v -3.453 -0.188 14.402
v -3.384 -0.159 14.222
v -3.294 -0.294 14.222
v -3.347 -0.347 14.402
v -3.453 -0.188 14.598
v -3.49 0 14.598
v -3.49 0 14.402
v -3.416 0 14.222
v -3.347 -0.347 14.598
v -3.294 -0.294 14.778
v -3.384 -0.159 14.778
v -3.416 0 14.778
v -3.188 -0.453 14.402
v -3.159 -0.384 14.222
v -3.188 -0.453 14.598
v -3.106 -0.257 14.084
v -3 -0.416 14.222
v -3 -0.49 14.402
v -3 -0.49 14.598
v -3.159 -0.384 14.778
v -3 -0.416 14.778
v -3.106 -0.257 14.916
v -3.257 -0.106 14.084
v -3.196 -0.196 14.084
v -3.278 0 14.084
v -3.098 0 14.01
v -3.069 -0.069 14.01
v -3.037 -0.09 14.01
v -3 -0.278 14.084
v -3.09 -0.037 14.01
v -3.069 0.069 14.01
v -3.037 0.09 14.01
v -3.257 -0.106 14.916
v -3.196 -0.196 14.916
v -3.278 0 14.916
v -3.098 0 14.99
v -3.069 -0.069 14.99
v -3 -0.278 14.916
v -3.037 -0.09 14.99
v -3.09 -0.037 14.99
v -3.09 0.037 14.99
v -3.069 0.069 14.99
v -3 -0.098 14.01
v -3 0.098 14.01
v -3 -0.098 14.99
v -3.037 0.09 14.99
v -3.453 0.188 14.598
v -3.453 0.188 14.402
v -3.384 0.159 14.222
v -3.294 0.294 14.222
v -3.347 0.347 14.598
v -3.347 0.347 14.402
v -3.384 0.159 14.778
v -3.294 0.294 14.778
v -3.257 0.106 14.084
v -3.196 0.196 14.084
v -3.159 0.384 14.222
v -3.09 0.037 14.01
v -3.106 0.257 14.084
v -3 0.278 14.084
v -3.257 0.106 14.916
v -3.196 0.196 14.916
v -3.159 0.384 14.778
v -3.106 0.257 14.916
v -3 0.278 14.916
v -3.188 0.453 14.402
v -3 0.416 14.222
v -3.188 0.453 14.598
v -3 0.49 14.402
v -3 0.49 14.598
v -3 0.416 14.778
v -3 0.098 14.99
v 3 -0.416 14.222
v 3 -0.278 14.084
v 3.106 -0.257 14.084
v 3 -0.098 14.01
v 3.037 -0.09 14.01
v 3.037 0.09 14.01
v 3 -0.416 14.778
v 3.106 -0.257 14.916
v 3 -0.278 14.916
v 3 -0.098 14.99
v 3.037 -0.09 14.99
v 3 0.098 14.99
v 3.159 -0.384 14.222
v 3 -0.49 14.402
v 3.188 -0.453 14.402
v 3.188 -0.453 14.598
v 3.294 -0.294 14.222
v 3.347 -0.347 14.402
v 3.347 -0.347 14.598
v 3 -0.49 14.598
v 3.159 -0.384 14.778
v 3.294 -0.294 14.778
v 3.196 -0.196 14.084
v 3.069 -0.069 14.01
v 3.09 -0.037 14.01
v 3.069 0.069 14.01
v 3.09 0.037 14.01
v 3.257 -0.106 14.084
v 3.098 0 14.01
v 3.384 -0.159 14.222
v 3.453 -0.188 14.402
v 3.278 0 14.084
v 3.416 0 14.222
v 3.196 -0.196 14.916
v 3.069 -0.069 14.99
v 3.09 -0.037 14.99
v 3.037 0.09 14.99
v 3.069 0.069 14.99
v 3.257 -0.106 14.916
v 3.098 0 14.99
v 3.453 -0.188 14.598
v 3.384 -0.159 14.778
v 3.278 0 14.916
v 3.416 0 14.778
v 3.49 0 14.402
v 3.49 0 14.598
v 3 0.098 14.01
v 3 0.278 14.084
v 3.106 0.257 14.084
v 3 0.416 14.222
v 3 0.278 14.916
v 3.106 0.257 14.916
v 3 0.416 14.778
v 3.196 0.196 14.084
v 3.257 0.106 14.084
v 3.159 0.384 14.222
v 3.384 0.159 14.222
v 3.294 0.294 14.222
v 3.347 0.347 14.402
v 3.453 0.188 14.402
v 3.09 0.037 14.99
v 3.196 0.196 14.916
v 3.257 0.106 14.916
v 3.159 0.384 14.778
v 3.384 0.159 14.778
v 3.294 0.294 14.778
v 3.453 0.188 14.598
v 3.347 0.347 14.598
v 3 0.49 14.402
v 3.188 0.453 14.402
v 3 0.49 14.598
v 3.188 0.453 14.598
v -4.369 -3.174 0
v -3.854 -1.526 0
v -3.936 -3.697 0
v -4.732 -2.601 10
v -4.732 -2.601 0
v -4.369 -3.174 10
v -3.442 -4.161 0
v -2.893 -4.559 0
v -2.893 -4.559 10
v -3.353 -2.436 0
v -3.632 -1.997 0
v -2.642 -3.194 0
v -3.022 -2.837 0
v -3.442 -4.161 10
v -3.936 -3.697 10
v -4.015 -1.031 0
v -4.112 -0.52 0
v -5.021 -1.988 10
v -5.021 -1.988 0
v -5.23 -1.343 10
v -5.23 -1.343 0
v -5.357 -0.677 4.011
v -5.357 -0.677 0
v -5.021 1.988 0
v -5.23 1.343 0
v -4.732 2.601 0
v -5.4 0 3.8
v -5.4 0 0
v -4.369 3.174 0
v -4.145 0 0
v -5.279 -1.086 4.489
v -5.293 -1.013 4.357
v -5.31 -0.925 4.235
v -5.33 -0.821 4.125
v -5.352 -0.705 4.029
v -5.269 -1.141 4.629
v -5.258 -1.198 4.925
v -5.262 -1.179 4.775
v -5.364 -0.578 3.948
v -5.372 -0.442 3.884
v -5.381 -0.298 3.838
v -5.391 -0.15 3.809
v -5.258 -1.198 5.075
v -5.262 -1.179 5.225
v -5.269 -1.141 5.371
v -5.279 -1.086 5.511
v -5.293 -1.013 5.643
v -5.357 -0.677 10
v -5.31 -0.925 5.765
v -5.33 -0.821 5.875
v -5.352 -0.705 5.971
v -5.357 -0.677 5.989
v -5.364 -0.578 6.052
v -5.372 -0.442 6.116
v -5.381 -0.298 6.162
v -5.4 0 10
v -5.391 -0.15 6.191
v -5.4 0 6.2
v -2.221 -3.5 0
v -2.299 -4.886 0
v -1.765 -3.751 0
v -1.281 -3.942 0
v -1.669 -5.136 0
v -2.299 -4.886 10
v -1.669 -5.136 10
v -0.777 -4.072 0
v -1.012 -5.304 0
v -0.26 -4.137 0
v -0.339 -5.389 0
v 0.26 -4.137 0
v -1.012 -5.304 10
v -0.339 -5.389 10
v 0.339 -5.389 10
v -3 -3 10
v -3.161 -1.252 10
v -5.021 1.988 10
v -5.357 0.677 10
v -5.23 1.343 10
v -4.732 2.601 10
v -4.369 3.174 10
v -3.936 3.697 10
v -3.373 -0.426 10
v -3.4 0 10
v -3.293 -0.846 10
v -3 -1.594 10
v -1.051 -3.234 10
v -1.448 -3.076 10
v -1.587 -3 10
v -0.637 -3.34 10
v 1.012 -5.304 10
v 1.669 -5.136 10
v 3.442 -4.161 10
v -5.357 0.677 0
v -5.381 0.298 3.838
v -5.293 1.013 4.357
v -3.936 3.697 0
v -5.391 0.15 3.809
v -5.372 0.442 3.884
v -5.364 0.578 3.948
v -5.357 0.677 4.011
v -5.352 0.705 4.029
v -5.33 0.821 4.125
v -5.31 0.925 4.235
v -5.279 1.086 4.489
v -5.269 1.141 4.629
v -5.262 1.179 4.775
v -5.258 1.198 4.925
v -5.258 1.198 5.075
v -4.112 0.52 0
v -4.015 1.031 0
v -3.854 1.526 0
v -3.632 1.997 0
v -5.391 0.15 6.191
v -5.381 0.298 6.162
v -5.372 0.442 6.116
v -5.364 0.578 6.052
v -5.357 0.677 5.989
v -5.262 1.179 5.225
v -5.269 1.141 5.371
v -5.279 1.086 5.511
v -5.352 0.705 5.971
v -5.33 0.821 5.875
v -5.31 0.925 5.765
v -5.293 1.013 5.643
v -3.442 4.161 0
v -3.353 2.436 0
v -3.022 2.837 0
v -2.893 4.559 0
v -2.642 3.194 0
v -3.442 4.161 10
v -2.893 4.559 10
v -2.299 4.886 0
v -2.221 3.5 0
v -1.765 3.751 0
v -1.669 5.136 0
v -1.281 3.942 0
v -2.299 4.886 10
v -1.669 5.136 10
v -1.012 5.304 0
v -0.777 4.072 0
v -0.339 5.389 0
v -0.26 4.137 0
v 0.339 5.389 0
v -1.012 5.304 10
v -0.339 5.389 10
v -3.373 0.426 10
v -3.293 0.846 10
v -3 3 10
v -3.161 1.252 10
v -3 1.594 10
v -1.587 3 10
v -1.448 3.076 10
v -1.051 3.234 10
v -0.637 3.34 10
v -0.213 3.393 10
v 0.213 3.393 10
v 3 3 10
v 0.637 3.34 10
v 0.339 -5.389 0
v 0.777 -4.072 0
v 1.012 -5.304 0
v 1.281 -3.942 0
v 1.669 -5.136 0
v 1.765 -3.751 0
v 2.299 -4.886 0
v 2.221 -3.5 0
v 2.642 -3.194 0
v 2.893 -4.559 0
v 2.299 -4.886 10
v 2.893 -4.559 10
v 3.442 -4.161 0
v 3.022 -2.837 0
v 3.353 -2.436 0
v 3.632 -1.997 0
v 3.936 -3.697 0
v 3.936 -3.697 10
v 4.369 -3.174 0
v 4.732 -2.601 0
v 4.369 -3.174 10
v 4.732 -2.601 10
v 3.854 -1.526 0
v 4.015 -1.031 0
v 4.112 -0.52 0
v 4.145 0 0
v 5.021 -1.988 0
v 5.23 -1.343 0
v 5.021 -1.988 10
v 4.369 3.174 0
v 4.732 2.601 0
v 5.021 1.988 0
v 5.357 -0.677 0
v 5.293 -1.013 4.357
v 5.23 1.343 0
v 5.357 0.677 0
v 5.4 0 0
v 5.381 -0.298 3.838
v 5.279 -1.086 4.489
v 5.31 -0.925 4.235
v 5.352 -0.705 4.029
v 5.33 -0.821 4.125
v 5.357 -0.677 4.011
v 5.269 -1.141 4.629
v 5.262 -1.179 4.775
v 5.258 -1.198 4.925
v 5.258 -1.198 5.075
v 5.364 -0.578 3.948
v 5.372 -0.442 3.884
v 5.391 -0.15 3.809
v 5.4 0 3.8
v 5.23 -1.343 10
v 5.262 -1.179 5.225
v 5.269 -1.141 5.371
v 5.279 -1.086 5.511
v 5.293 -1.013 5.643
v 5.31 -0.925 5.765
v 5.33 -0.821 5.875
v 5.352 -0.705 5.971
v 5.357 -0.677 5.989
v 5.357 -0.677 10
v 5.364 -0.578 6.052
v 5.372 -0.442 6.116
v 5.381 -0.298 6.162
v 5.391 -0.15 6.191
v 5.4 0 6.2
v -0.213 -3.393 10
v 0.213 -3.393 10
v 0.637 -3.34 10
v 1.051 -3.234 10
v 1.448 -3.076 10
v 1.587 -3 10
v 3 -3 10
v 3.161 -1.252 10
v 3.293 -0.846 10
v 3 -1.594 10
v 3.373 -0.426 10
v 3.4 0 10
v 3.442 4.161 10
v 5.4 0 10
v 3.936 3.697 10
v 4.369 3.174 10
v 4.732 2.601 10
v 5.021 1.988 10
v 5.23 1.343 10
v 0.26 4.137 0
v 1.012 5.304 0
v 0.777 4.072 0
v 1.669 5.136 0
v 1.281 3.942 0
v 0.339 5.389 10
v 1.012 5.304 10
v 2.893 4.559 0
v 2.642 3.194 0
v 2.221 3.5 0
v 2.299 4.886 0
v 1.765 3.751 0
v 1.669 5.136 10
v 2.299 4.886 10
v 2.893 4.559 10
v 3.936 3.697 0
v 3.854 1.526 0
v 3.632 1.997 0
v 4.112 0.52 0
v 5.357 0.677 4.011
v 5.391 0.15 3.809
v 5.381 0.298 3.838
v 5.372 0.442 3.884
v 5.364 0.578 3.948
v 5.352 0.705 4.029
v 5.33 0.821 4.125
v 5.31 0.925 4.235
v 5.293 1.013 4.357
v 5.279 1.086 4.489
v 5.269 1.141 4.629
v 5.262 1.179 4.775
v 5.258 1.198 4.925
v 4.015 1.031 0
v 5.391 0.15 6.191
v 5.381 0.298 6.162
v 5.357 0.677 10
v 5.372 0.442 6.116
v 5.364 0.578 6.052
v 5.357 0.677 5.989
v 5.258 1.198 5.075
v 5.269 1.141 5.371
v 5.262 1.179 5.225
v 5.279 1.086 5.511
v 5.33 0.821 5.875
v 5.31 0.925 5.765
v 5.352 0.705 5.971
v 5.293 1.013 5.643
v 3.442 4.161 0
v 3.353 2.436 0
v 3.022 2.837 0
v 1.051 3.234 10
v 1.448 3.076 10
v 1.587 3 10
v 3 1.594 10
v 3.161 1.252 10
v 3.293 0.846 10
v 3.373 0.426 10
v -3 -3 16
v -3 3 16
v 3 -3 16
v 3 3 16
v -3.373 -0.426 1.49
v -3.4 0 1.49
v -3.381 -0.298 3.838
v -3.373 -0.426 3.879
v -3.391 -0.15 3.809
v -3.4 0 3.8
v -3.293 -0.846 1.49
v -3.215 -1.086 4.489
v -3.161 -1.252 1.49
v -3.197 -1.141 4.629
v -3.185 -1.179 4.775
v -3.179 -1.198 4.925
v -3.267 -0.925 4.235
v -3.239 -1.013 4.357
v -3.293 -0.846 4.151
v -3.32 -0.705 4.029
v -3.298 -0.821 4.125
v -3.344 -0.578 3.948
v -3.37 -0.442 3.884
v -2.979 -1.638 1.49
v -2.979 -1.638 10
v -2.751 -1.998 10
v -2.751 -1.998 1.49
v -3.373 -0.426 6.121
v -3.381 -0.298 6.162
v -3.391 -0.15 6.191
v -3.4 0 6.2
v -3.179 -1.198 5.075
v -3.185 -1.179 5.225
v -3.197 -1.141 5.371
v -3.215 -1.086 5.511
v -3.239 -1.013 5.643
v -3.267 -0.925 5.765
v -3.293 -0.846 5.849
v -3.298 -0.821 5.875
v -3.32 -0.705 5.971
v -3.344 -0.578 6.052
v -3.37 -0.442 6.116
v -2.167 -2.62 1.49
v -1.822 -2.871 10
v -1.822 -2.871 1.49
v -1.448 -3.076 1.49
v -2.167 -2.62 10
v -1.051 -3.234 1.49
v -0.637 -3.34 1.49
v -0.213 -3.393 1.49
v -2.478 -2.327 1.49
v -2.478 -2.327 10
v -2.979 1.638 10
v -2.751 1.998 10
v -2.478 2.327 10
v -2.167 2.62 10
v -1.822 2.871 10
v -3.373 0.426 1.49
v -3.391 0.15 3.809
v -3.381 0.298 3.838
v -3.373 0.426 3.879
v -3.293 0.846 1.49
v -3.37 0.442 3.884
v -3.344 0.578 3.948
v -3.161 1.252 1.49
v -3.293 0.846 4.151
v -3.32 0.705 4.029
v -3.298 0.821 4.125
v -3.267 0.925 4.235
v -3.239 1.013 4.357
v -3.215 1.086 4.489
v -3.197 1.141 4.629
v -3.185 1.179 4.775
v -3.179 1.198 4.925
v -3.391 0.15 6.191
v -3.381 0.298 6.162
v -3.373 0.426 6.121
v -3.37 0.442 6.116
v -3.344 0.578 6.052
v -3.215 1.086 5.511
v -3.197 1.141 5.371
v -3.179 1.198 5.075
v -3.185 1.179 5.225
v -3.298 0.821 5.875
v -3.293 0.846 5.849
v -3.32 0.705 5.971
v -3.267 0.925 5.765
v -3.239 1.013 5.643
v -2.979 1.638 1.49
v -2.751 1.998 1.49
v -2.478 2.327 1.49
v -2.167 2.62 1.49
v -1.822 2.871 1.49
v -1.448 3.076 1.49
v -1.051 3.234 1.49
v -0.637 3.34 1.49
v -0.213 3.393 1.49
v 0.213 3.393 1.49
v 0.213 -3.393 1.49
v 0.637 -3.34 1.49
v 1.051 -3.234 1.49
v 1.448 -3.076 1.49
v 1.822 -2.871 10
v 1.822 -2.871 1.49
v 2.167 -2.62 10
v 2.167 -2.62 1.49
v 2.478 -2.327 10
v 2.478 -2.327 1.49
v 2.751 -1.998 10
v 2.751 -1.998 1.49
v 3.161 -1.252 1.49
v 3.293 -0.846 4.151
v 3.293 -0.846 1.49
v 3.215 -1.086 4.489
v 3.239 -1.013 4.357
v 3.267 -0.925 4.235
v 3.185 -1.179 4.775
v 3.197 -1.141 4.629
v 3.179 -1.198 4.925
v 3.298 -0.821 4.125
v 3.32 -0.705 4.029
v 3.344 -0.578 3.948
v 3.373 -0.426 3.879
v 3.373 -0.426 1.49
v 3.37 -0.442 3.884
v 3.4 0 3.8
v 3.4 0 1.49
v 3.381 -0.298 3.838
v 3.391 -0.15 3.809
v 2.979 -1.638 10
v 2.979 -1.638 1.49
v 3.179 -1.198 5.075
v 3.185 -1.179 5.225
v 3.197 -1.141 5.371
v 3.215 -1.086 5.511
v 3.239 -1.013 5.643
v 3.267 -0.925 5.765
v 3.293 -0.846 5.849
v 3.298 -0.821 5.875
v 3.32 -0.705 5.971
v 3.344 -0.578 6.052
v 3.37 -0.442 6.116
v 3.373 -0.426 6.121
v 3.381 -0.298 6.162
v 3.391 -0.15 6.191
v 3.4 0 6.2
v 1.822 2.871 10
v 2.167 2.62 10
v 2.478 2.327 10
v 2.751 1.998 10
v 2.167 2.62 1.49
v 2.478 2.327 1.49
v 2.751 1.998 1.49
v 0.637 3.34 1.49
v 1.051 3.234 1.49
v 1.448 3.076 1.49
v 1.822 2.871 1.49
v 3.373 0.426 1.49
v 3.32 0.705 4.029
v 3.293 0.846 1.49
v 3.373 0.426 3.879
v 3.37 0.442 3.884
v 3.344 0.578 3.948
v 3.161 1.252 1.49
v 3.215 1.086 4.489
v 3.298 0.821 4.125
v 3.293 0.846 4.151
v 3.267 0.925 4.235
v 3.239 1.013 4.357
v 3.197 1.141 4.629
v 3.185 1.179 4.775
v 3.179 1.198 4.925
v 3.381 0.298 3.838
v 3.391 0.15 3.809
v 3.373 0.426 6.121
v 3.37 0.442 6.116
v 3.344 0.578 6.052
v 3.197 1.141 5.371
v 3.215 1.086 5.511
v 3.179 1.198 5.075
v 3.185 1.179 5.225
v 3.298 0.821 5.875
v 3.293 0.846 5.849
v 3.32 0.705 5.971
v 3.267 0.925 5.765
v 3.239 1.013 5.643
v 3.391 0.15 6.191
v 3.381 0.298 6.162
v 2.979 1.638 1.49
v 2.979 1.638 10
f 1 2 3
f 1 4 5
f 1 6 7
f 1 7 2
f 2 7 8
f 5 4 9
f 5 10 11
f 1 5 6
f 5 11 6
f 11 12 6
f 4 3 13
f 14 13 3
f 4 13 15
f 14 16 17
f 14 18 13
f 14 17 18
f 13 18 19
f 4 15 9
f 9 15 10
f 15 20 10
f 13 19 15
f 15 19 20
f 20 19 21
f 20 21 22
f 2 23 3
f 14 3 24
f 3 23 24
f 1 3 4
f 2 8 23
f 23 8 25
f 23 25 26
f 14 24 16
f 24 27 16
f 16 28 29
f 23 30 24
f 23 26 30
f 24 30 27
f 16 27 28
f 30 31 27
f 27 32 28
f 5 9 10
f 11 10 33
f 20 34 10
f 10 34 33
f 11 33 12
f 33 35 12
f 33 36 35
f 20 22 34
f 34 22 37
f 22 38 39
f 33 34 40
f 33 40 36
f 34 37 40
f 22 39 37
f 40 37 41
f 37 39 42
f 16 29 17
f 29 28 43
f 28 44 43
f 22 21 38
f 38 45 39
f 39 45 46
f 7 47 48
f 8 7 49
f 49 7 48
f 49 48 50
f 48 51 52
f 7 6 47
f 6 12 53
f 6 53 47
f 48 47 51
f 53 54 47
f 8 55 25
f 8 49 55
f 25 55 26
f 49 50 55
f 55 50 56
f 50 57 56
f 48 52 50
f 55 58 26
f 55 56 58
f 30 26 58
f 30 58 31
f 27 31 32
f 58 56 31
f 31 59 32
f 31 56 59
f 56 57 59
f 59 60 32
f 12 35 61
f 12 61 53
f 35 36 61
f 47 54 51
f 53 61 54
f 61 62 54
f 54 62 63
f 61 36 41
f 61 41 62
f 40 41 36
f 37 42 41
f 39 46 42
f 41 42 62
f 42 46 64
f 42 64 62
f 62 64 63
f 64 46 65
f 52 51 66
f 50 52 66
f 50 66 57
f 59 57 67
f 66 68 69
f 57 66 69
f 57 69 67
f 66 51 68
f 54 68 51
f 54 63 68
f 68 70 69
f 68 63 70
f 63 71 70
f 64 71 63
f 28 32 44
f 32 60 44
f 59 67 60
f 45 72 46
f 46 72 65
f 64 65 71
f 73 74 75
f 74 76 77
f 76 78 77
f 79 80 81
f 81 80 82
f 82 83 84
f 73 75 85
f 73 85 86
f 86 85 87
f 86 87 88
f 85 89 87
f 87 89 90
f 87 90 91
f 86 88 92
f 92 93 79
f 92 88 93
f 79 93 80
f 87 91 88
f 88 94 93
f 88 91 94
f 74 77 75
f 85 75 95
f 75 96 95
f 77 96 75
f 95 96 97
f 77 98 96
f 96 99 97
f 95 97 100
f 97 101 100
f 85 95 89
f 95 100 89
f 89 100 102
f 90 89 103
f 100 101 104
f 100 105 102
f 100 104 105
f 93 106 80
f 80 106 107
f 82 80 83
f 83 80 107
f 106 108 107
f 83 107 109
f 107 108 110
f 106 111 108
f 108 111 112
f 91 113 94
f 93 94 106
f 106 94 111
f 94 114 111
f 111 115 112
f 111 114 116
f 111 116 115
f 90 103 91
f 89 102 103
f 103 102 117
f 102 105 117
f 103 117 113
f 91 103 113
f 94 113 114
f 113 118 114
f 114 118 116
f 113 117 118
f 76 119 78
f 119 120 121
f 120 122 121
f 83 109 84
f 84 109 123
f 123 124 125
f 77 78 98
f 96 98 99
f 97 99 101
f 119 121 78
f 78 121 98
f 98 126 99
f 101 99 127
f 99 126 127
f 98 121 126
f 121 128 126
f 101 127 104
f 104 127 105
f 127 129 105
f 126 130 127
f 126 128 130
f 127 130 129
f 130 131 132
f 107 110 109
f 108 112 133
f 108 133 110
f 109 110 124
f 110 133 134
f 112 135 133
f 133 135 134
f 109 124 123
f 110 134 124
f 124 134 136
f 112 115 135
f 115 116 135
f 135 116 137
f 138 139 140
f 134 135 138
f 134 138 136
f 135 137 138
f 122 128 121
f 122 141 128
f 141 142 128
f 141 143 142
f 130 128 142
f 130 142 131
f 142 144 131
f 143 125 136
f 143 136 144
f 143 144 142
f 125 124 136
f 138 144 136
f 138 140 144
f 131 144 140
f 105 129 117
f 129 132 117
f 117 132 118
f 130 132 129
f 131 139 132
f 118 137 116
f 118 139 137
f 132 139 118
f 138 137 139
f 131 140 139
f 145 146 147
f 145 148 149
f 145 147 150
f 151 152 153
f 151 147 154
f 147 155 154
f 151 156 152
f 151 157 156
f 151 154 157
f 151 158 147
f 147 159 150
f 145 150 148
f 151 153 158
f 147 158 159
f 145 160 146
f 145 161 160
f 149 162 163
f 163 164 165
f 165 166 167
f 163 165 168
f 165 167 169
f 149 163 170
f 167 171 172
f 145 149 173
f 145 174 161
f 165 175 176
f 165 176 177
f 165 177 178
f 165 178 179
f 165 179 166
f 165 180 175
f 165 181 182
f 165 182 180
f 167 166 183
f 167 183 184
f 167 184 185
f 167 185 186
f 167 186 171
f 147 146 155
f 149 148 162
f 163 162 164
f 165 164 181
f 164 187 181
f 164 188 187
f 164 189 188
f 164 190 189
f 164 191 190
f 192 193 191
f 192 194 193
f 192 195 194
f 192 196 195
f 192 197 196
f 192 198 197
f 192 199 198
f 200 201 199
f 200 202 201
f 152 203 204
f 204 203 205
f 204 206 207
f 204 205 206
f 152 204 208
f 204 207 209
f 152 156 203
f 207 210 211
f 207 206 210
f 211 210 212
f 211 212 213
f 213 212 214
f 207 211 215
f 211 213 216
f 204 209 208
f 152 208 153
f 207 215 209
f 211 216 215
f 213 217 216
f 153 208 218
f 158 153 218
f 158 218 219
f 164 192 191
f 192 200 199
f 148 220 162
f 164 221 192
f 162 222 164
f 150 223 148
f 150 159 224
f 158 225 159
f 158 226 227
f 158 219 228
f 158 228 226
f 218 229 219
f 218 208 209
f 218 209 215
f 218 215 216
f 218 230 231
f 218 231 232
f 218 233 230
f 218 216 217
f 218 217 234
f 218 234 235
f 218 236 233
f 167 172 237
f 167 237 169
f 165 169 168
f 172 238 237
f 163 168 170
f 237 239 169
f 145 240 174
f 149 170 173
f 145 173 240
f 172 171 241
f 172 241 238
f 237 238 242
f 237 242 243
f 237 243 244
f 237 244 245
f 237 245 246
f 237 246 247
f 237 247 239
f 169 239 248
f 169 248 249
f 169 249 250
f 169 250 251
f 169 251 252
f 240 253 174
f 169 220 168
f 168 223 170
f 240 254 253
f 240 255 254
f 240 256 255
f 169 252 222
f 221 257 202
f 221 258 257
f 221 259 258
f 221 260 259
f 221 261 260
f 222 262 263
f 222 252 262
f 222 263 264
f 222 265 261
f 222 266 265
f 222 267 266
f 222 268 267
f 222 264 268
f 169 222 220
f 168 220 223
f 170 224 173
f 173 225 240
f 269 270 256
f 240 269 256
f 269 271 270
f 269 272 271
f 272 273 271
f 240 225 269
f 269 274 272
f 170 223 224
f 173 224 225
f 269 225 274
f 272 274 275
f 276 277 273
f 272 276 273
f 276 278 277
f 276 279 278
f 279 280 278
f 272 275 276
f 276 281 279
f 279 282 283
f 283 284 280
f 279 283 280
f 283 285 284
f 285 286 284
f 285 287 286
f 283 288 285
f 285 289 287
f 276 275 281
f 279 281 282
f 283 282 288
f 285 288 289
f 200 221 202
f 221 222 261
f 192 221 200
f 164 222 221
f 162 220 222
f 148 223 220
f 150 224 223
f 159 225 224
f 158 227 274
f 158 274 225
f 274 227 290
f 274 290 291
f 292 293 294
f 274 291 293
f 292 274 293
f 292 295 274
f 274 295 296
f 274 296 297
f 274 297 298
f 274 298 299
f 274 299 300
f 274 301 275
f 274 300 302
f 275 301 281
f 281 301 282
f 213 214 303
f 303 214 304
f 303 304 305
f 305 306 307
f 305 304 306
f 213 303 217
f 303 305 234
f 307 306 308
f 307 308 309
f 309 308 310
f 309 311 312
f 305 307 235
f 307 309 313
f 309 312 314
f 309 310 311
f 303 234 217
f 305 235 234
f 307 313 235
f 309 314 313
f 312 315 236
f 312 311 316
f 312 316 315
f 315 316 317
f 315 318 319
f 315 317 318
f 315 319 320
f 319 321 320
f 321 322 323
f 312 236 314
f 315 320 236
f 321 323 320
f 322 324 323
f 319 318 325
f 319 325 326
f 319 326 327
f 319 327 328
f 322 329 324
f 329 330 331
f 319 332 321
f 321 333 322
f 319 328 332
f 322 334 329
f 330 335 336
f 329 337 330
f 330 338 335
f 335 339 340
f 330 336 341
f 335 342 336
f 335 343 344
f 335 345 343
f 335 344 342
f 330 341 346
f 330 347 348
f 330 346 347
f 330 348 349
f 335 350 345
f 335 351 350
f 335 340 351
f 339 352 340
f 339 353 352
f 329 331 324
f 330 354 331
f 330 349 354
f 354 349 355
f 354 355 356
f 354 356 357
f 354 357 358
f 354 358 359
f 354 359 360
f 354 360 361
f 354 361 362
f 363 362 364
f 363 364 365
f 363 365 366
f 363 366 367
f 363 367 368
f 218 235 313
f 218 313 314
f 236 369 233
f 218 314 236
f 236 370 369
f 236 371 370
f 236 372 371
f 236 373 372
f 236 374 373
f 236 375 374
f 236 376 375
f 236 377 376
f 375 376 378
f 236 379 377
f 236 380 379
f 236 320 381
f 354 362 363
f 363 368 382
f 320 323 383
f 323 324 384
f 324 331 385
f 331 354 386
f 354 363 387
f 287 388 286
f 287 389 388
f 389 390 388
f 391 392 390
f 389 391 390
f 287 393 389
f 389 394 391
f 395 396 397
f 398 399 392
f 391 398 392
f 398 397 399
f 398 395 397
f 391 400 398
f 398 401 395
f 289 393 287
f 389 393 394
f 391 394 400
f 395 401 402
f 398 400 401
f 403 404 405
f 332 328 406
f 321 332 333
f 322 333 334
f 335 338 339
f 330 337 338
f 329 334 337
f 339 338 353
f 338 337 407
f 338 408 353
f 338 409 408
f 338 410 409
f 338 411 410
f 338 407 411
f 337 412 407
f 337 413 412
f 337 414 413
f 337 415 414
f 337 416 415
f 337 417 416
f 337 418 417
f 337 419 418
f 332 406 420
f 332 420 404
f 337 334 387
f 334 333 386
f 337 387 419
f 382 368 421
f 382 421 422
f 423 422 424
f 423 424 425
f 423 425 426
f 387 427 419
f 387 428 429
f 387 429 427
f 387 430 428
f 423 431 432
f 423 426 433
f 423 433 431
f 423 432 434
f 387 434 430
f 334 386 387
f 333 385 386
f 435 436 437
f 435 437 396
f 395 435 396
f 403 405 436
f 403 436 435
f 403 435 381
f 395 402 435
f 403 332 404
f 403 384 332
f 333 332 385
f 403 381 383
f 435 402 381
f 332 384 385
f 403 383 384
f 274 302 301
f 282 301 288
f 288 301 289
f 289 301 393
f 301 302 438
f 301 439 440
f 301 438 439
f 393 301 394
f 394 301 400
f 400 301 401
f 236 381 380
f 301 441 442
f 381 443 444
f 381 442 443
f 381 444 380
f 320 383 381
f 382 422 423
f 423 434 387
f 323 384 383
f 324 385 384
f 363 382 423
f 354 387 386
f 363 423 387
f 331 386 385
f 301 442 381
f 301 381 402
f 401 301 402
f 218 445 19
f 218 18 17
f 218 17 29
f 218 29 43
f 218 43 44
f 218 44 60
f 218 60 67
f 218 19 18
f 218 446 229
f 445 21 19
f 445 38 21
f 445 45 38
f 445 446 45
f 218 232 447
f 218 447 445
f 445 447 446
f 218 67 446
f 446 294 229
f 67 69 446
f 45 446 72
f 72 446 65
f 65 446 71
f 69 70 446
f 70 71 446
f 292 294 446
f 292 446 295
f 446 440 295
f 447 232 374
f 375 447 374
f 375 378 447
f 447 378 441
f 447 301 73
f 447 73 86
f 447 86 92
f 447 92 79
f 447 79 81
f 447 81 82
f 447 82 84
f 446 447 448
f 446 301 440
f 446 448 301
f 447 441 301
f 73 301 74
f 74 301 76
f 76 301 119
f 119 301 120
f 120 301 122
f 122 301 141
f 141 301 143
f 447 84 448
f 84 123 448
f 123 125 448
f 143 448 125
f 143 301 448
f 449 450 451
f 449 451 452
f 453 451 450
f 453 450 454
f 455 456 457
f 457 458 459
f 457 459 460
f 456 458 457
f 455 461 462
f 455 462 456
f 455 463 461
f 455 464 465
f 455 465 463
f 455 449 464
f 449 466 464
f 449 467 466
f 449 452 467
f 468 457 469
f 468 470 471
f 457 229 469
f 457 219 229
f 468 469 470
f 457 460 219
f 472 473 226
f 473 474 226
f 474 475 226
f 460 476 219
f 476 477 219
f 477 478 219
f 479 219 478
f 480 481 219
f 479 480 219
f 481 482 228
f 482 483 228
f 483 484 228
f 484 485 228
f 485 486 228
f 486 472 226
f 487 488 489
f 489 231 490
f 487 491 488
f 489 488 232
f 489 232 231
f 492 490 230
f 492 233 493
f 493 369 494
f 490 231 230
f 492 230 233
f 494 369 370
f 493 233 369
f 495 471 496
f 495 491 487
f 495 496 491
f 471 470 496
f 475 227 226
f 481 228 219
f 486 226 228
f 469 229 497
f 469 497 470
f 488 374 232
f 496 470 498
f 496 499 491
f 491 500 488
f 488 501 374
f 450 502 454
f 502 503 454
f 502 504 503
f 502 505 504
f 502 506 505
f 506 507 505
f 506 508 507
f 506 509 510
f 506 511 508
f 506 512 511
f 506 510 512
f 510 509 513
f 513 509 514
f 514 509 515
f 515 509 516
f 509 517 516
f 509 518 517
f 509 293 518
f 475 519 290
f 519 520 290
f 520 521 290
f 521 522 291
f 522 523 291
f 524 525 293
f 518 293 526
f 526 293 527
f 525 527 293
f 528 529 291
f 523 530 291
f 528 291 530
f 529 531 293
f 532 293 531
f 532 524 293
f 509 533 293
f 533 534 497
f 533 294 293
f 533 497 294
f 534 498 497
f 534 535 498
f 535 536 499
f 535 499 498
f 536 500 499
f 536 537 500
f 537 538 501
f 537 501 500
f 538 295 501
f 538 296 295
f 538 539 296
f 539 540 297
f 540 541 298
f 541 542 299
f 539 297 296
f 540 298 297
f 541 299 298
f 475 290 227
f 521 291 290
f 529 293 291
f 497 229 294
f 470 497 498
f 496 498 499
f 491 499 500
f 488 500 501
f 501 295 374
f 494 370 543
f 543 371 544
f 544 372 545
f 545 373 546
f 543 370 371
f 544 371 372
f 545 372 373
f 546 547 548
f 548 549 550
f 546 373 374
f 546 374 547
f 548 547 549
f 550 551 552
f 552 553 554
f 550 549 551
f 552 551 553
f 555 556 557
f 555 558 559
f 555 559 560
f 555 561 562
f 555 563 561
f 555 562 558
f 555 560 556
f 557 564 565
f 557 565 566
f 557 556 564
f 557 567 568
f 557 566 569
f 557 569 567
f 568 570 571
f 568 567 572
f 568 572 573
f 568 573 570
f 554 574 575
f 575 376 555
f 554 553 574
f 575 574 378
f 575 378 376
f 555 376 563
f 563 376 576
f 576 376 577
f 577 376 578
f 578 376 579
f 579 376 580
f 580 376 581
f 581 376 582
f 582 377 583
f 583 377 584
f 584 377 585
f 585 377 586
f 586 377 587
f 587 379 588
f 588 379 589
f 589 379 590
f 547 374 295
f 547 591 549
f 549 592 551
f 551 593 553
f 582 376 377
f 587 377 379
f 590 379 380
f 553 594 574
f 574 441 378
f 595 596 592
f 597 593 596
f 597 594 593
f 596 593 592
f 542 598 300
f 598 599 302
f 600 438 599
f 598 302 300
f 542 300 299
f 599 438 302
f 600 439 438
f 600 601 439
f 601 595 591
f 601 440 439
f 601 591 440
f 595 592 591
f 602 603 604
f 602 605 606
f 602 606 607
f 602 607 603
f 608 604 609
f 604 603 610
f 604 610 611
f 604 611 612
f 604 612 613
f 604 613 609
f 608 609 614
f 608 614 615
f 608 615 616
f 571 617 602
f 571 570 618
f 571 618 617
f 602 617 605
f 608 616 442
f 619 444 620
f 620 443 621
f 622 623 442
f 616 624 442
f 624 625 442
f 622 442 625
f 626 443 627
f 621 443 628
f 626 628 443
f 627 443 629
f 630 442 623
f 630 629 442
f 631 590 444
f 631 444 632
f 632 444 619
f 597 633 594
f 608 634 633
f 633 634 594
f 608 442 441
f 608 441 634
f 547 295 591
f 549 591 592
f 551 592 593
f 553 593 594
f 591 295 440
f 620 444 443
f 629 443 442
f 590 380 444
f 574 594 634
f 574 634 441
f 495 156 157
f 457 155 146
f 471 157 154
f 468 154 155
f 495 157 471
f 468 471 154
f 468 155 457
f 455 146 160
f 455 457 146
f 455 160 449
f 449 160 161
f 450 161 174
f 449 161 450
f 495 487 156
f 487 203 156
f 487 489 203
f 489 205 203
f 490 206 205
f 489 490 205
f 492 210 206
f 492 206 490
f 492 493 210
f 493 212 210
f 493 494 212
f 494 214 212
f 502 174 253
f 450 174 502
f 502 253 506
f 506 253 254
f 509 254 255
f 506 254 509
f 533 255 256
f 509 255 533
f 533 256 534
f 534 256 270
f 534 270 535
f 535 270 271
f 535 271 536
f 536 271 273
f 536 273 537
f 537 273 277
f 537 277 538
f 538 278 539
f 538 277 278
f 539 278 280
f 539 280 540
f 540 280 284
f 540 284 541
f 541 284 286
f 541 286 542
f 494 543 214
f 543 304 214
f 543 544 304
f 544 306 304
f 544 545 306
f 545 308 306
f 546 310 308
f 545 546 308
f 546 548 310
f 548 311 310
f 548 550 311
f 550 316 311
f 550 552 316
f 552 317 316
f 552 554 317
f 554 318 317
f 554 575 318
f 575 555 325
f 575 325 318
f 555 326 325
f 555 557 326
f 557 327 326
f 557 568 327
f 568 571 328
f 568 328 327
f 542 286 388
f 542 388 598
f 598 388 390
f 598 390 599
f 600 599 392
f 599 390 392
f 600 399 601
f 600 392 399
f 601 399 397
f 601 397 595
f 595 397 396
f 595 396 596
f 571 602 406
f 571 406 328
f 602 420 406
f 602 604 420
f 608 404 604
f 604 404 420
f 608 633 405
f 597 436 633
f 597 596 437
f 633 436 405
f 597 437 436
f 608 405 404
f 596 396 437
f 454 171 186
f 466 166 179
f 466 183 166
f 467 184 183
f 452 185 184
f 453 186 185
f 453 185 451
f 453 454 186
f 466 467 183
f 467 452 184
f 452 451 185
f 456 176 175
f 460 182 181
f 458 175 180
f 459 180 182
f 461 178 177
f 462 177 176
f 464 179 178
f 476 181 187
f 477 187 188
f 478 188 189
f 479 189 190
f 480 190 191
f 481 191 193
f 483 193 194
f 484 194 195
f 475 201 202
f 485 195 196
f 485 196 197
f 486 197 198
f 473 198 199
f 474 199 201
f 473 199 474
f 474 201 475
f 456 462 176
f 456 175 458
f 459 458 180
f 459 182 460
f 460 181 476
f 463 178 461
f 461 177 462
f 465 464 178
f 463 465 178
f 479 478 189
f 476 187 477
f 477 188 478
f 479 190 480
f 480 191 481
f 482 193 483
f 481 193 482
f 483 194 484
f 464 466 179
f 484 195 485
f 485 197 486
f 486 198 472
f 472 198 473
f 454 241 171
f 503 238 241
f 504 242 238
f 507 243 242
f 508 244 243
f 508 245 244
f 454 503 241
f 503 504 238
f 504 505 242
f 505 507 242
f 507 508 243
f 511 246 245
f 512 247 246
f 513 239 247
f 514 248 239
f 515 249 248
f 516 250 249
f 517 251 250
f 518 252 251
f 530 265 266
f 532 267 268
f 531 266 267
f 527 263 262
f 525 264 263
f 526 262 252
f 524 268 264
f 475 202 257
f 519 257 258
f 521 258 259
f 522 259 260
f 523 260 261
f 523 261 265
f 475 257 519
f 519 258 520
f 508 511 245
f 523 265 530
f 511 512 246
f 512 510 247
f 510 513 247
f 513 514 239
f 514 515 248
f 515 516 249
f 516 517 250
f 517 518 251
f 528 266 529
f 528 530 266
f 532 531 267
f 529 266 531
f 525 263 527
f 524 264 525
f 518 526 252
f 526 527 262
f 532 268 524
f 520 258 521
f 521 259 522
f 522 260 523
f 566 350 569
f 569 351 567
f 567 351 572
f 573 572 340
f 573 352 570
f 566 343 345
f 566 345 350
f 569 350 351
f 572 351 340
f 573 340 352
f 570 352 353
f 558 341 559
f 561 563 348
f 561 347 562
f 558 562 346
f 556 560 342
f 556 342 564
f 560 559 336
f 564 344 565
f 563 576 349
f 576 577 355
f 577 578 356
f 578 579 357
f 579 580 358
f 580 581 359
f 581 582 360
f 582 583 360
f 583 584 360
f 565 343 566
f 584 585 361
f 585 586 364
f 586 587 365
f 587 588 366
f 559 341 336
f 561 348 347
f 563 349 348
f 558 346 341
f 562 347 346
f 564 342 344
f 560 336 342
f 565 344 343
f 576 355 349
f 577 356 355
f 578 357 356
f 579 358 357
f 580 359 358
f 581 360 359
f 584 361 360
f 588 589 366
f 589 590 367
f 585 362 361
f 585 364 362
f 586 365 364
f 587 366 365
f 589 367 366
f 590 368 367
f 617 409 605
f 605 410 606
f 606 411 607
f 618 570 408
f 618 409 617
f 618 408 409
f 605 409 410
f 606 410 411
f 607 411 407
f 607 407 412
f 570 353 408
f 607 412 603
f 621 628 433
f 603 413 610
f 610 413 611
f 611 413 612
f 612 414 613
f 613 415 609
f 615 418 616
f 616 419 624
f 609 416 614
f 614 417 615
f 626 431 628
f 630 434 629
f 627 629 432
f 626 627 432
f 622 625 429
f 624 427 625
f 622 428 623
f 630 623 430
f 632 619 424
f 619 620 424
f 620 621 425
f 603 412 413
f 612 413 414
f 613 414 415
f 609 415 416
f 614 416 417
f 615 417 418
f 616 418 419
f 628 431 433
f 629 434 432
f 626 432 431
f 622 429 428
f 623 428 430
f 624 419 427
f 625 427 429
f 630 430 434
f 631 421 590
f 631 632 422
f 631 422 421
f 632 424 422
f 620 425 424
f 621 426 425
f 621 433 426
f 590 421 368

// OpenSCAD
// ====================================================================
// [PRINT 07-A] Tower Station B - Lower Mast Socket
// Sits 100% flat on build plate at Z = 0.
// Includes square locking post with snap-fit retention nubs.
// ZERO SUPPORTS NEEDED!
// ====================================================================

$fn = 50;

socket_inner_d = 6.8;   // Fits scaled 6.8mm mast plug
socket_wall    = 2.0;   // Wall thickness
socket_depth   = 10.0;  // Socket depth

module tower_head_b_socket() {
    difference() {
        union() {
            // Main cylindrical mast socket
            cylinder(d = socket_inner_d + (socket_wall * 2), h = socket_depth);
            
            // Upper square snap post (plugs into Upper Tensioner Bracket 07-B)
            translate([0, 0, socket_depth + 3.0])
                cube([6.0, 6.0, 6.0], center = true);

            // Friction snap detent nubs on sides of post
            for (x_sign = [-1, 1]) {
                translate([x_sign * 3.0, 0, socket_depth + 4.5])
                    sphere(r = 0.5, $fn = 16);
            }
        }

        // Mast socket cavity (bottom) with 45-degree self-aligning lead-in chamfer
        translate([0, 0, -1])
            cylinder(d = socket_inner_d, h = socket_depth + 1);
        translate([0, 0, -0.01])
            cylinder(d1 = socket_inner_d + 1.5, d2 = socket_inner_d, h = 1.5);

        // Mast cross-pin clamp hole
        translate([0, 0, socket_depth / 2])
            rotate([0, 90, 0])
                cylinder(d = 2.4, h = socket_inner_d + 6, center = true);
    }
}

// Centered on bed at Z = 0
tower_head_b_socket();
